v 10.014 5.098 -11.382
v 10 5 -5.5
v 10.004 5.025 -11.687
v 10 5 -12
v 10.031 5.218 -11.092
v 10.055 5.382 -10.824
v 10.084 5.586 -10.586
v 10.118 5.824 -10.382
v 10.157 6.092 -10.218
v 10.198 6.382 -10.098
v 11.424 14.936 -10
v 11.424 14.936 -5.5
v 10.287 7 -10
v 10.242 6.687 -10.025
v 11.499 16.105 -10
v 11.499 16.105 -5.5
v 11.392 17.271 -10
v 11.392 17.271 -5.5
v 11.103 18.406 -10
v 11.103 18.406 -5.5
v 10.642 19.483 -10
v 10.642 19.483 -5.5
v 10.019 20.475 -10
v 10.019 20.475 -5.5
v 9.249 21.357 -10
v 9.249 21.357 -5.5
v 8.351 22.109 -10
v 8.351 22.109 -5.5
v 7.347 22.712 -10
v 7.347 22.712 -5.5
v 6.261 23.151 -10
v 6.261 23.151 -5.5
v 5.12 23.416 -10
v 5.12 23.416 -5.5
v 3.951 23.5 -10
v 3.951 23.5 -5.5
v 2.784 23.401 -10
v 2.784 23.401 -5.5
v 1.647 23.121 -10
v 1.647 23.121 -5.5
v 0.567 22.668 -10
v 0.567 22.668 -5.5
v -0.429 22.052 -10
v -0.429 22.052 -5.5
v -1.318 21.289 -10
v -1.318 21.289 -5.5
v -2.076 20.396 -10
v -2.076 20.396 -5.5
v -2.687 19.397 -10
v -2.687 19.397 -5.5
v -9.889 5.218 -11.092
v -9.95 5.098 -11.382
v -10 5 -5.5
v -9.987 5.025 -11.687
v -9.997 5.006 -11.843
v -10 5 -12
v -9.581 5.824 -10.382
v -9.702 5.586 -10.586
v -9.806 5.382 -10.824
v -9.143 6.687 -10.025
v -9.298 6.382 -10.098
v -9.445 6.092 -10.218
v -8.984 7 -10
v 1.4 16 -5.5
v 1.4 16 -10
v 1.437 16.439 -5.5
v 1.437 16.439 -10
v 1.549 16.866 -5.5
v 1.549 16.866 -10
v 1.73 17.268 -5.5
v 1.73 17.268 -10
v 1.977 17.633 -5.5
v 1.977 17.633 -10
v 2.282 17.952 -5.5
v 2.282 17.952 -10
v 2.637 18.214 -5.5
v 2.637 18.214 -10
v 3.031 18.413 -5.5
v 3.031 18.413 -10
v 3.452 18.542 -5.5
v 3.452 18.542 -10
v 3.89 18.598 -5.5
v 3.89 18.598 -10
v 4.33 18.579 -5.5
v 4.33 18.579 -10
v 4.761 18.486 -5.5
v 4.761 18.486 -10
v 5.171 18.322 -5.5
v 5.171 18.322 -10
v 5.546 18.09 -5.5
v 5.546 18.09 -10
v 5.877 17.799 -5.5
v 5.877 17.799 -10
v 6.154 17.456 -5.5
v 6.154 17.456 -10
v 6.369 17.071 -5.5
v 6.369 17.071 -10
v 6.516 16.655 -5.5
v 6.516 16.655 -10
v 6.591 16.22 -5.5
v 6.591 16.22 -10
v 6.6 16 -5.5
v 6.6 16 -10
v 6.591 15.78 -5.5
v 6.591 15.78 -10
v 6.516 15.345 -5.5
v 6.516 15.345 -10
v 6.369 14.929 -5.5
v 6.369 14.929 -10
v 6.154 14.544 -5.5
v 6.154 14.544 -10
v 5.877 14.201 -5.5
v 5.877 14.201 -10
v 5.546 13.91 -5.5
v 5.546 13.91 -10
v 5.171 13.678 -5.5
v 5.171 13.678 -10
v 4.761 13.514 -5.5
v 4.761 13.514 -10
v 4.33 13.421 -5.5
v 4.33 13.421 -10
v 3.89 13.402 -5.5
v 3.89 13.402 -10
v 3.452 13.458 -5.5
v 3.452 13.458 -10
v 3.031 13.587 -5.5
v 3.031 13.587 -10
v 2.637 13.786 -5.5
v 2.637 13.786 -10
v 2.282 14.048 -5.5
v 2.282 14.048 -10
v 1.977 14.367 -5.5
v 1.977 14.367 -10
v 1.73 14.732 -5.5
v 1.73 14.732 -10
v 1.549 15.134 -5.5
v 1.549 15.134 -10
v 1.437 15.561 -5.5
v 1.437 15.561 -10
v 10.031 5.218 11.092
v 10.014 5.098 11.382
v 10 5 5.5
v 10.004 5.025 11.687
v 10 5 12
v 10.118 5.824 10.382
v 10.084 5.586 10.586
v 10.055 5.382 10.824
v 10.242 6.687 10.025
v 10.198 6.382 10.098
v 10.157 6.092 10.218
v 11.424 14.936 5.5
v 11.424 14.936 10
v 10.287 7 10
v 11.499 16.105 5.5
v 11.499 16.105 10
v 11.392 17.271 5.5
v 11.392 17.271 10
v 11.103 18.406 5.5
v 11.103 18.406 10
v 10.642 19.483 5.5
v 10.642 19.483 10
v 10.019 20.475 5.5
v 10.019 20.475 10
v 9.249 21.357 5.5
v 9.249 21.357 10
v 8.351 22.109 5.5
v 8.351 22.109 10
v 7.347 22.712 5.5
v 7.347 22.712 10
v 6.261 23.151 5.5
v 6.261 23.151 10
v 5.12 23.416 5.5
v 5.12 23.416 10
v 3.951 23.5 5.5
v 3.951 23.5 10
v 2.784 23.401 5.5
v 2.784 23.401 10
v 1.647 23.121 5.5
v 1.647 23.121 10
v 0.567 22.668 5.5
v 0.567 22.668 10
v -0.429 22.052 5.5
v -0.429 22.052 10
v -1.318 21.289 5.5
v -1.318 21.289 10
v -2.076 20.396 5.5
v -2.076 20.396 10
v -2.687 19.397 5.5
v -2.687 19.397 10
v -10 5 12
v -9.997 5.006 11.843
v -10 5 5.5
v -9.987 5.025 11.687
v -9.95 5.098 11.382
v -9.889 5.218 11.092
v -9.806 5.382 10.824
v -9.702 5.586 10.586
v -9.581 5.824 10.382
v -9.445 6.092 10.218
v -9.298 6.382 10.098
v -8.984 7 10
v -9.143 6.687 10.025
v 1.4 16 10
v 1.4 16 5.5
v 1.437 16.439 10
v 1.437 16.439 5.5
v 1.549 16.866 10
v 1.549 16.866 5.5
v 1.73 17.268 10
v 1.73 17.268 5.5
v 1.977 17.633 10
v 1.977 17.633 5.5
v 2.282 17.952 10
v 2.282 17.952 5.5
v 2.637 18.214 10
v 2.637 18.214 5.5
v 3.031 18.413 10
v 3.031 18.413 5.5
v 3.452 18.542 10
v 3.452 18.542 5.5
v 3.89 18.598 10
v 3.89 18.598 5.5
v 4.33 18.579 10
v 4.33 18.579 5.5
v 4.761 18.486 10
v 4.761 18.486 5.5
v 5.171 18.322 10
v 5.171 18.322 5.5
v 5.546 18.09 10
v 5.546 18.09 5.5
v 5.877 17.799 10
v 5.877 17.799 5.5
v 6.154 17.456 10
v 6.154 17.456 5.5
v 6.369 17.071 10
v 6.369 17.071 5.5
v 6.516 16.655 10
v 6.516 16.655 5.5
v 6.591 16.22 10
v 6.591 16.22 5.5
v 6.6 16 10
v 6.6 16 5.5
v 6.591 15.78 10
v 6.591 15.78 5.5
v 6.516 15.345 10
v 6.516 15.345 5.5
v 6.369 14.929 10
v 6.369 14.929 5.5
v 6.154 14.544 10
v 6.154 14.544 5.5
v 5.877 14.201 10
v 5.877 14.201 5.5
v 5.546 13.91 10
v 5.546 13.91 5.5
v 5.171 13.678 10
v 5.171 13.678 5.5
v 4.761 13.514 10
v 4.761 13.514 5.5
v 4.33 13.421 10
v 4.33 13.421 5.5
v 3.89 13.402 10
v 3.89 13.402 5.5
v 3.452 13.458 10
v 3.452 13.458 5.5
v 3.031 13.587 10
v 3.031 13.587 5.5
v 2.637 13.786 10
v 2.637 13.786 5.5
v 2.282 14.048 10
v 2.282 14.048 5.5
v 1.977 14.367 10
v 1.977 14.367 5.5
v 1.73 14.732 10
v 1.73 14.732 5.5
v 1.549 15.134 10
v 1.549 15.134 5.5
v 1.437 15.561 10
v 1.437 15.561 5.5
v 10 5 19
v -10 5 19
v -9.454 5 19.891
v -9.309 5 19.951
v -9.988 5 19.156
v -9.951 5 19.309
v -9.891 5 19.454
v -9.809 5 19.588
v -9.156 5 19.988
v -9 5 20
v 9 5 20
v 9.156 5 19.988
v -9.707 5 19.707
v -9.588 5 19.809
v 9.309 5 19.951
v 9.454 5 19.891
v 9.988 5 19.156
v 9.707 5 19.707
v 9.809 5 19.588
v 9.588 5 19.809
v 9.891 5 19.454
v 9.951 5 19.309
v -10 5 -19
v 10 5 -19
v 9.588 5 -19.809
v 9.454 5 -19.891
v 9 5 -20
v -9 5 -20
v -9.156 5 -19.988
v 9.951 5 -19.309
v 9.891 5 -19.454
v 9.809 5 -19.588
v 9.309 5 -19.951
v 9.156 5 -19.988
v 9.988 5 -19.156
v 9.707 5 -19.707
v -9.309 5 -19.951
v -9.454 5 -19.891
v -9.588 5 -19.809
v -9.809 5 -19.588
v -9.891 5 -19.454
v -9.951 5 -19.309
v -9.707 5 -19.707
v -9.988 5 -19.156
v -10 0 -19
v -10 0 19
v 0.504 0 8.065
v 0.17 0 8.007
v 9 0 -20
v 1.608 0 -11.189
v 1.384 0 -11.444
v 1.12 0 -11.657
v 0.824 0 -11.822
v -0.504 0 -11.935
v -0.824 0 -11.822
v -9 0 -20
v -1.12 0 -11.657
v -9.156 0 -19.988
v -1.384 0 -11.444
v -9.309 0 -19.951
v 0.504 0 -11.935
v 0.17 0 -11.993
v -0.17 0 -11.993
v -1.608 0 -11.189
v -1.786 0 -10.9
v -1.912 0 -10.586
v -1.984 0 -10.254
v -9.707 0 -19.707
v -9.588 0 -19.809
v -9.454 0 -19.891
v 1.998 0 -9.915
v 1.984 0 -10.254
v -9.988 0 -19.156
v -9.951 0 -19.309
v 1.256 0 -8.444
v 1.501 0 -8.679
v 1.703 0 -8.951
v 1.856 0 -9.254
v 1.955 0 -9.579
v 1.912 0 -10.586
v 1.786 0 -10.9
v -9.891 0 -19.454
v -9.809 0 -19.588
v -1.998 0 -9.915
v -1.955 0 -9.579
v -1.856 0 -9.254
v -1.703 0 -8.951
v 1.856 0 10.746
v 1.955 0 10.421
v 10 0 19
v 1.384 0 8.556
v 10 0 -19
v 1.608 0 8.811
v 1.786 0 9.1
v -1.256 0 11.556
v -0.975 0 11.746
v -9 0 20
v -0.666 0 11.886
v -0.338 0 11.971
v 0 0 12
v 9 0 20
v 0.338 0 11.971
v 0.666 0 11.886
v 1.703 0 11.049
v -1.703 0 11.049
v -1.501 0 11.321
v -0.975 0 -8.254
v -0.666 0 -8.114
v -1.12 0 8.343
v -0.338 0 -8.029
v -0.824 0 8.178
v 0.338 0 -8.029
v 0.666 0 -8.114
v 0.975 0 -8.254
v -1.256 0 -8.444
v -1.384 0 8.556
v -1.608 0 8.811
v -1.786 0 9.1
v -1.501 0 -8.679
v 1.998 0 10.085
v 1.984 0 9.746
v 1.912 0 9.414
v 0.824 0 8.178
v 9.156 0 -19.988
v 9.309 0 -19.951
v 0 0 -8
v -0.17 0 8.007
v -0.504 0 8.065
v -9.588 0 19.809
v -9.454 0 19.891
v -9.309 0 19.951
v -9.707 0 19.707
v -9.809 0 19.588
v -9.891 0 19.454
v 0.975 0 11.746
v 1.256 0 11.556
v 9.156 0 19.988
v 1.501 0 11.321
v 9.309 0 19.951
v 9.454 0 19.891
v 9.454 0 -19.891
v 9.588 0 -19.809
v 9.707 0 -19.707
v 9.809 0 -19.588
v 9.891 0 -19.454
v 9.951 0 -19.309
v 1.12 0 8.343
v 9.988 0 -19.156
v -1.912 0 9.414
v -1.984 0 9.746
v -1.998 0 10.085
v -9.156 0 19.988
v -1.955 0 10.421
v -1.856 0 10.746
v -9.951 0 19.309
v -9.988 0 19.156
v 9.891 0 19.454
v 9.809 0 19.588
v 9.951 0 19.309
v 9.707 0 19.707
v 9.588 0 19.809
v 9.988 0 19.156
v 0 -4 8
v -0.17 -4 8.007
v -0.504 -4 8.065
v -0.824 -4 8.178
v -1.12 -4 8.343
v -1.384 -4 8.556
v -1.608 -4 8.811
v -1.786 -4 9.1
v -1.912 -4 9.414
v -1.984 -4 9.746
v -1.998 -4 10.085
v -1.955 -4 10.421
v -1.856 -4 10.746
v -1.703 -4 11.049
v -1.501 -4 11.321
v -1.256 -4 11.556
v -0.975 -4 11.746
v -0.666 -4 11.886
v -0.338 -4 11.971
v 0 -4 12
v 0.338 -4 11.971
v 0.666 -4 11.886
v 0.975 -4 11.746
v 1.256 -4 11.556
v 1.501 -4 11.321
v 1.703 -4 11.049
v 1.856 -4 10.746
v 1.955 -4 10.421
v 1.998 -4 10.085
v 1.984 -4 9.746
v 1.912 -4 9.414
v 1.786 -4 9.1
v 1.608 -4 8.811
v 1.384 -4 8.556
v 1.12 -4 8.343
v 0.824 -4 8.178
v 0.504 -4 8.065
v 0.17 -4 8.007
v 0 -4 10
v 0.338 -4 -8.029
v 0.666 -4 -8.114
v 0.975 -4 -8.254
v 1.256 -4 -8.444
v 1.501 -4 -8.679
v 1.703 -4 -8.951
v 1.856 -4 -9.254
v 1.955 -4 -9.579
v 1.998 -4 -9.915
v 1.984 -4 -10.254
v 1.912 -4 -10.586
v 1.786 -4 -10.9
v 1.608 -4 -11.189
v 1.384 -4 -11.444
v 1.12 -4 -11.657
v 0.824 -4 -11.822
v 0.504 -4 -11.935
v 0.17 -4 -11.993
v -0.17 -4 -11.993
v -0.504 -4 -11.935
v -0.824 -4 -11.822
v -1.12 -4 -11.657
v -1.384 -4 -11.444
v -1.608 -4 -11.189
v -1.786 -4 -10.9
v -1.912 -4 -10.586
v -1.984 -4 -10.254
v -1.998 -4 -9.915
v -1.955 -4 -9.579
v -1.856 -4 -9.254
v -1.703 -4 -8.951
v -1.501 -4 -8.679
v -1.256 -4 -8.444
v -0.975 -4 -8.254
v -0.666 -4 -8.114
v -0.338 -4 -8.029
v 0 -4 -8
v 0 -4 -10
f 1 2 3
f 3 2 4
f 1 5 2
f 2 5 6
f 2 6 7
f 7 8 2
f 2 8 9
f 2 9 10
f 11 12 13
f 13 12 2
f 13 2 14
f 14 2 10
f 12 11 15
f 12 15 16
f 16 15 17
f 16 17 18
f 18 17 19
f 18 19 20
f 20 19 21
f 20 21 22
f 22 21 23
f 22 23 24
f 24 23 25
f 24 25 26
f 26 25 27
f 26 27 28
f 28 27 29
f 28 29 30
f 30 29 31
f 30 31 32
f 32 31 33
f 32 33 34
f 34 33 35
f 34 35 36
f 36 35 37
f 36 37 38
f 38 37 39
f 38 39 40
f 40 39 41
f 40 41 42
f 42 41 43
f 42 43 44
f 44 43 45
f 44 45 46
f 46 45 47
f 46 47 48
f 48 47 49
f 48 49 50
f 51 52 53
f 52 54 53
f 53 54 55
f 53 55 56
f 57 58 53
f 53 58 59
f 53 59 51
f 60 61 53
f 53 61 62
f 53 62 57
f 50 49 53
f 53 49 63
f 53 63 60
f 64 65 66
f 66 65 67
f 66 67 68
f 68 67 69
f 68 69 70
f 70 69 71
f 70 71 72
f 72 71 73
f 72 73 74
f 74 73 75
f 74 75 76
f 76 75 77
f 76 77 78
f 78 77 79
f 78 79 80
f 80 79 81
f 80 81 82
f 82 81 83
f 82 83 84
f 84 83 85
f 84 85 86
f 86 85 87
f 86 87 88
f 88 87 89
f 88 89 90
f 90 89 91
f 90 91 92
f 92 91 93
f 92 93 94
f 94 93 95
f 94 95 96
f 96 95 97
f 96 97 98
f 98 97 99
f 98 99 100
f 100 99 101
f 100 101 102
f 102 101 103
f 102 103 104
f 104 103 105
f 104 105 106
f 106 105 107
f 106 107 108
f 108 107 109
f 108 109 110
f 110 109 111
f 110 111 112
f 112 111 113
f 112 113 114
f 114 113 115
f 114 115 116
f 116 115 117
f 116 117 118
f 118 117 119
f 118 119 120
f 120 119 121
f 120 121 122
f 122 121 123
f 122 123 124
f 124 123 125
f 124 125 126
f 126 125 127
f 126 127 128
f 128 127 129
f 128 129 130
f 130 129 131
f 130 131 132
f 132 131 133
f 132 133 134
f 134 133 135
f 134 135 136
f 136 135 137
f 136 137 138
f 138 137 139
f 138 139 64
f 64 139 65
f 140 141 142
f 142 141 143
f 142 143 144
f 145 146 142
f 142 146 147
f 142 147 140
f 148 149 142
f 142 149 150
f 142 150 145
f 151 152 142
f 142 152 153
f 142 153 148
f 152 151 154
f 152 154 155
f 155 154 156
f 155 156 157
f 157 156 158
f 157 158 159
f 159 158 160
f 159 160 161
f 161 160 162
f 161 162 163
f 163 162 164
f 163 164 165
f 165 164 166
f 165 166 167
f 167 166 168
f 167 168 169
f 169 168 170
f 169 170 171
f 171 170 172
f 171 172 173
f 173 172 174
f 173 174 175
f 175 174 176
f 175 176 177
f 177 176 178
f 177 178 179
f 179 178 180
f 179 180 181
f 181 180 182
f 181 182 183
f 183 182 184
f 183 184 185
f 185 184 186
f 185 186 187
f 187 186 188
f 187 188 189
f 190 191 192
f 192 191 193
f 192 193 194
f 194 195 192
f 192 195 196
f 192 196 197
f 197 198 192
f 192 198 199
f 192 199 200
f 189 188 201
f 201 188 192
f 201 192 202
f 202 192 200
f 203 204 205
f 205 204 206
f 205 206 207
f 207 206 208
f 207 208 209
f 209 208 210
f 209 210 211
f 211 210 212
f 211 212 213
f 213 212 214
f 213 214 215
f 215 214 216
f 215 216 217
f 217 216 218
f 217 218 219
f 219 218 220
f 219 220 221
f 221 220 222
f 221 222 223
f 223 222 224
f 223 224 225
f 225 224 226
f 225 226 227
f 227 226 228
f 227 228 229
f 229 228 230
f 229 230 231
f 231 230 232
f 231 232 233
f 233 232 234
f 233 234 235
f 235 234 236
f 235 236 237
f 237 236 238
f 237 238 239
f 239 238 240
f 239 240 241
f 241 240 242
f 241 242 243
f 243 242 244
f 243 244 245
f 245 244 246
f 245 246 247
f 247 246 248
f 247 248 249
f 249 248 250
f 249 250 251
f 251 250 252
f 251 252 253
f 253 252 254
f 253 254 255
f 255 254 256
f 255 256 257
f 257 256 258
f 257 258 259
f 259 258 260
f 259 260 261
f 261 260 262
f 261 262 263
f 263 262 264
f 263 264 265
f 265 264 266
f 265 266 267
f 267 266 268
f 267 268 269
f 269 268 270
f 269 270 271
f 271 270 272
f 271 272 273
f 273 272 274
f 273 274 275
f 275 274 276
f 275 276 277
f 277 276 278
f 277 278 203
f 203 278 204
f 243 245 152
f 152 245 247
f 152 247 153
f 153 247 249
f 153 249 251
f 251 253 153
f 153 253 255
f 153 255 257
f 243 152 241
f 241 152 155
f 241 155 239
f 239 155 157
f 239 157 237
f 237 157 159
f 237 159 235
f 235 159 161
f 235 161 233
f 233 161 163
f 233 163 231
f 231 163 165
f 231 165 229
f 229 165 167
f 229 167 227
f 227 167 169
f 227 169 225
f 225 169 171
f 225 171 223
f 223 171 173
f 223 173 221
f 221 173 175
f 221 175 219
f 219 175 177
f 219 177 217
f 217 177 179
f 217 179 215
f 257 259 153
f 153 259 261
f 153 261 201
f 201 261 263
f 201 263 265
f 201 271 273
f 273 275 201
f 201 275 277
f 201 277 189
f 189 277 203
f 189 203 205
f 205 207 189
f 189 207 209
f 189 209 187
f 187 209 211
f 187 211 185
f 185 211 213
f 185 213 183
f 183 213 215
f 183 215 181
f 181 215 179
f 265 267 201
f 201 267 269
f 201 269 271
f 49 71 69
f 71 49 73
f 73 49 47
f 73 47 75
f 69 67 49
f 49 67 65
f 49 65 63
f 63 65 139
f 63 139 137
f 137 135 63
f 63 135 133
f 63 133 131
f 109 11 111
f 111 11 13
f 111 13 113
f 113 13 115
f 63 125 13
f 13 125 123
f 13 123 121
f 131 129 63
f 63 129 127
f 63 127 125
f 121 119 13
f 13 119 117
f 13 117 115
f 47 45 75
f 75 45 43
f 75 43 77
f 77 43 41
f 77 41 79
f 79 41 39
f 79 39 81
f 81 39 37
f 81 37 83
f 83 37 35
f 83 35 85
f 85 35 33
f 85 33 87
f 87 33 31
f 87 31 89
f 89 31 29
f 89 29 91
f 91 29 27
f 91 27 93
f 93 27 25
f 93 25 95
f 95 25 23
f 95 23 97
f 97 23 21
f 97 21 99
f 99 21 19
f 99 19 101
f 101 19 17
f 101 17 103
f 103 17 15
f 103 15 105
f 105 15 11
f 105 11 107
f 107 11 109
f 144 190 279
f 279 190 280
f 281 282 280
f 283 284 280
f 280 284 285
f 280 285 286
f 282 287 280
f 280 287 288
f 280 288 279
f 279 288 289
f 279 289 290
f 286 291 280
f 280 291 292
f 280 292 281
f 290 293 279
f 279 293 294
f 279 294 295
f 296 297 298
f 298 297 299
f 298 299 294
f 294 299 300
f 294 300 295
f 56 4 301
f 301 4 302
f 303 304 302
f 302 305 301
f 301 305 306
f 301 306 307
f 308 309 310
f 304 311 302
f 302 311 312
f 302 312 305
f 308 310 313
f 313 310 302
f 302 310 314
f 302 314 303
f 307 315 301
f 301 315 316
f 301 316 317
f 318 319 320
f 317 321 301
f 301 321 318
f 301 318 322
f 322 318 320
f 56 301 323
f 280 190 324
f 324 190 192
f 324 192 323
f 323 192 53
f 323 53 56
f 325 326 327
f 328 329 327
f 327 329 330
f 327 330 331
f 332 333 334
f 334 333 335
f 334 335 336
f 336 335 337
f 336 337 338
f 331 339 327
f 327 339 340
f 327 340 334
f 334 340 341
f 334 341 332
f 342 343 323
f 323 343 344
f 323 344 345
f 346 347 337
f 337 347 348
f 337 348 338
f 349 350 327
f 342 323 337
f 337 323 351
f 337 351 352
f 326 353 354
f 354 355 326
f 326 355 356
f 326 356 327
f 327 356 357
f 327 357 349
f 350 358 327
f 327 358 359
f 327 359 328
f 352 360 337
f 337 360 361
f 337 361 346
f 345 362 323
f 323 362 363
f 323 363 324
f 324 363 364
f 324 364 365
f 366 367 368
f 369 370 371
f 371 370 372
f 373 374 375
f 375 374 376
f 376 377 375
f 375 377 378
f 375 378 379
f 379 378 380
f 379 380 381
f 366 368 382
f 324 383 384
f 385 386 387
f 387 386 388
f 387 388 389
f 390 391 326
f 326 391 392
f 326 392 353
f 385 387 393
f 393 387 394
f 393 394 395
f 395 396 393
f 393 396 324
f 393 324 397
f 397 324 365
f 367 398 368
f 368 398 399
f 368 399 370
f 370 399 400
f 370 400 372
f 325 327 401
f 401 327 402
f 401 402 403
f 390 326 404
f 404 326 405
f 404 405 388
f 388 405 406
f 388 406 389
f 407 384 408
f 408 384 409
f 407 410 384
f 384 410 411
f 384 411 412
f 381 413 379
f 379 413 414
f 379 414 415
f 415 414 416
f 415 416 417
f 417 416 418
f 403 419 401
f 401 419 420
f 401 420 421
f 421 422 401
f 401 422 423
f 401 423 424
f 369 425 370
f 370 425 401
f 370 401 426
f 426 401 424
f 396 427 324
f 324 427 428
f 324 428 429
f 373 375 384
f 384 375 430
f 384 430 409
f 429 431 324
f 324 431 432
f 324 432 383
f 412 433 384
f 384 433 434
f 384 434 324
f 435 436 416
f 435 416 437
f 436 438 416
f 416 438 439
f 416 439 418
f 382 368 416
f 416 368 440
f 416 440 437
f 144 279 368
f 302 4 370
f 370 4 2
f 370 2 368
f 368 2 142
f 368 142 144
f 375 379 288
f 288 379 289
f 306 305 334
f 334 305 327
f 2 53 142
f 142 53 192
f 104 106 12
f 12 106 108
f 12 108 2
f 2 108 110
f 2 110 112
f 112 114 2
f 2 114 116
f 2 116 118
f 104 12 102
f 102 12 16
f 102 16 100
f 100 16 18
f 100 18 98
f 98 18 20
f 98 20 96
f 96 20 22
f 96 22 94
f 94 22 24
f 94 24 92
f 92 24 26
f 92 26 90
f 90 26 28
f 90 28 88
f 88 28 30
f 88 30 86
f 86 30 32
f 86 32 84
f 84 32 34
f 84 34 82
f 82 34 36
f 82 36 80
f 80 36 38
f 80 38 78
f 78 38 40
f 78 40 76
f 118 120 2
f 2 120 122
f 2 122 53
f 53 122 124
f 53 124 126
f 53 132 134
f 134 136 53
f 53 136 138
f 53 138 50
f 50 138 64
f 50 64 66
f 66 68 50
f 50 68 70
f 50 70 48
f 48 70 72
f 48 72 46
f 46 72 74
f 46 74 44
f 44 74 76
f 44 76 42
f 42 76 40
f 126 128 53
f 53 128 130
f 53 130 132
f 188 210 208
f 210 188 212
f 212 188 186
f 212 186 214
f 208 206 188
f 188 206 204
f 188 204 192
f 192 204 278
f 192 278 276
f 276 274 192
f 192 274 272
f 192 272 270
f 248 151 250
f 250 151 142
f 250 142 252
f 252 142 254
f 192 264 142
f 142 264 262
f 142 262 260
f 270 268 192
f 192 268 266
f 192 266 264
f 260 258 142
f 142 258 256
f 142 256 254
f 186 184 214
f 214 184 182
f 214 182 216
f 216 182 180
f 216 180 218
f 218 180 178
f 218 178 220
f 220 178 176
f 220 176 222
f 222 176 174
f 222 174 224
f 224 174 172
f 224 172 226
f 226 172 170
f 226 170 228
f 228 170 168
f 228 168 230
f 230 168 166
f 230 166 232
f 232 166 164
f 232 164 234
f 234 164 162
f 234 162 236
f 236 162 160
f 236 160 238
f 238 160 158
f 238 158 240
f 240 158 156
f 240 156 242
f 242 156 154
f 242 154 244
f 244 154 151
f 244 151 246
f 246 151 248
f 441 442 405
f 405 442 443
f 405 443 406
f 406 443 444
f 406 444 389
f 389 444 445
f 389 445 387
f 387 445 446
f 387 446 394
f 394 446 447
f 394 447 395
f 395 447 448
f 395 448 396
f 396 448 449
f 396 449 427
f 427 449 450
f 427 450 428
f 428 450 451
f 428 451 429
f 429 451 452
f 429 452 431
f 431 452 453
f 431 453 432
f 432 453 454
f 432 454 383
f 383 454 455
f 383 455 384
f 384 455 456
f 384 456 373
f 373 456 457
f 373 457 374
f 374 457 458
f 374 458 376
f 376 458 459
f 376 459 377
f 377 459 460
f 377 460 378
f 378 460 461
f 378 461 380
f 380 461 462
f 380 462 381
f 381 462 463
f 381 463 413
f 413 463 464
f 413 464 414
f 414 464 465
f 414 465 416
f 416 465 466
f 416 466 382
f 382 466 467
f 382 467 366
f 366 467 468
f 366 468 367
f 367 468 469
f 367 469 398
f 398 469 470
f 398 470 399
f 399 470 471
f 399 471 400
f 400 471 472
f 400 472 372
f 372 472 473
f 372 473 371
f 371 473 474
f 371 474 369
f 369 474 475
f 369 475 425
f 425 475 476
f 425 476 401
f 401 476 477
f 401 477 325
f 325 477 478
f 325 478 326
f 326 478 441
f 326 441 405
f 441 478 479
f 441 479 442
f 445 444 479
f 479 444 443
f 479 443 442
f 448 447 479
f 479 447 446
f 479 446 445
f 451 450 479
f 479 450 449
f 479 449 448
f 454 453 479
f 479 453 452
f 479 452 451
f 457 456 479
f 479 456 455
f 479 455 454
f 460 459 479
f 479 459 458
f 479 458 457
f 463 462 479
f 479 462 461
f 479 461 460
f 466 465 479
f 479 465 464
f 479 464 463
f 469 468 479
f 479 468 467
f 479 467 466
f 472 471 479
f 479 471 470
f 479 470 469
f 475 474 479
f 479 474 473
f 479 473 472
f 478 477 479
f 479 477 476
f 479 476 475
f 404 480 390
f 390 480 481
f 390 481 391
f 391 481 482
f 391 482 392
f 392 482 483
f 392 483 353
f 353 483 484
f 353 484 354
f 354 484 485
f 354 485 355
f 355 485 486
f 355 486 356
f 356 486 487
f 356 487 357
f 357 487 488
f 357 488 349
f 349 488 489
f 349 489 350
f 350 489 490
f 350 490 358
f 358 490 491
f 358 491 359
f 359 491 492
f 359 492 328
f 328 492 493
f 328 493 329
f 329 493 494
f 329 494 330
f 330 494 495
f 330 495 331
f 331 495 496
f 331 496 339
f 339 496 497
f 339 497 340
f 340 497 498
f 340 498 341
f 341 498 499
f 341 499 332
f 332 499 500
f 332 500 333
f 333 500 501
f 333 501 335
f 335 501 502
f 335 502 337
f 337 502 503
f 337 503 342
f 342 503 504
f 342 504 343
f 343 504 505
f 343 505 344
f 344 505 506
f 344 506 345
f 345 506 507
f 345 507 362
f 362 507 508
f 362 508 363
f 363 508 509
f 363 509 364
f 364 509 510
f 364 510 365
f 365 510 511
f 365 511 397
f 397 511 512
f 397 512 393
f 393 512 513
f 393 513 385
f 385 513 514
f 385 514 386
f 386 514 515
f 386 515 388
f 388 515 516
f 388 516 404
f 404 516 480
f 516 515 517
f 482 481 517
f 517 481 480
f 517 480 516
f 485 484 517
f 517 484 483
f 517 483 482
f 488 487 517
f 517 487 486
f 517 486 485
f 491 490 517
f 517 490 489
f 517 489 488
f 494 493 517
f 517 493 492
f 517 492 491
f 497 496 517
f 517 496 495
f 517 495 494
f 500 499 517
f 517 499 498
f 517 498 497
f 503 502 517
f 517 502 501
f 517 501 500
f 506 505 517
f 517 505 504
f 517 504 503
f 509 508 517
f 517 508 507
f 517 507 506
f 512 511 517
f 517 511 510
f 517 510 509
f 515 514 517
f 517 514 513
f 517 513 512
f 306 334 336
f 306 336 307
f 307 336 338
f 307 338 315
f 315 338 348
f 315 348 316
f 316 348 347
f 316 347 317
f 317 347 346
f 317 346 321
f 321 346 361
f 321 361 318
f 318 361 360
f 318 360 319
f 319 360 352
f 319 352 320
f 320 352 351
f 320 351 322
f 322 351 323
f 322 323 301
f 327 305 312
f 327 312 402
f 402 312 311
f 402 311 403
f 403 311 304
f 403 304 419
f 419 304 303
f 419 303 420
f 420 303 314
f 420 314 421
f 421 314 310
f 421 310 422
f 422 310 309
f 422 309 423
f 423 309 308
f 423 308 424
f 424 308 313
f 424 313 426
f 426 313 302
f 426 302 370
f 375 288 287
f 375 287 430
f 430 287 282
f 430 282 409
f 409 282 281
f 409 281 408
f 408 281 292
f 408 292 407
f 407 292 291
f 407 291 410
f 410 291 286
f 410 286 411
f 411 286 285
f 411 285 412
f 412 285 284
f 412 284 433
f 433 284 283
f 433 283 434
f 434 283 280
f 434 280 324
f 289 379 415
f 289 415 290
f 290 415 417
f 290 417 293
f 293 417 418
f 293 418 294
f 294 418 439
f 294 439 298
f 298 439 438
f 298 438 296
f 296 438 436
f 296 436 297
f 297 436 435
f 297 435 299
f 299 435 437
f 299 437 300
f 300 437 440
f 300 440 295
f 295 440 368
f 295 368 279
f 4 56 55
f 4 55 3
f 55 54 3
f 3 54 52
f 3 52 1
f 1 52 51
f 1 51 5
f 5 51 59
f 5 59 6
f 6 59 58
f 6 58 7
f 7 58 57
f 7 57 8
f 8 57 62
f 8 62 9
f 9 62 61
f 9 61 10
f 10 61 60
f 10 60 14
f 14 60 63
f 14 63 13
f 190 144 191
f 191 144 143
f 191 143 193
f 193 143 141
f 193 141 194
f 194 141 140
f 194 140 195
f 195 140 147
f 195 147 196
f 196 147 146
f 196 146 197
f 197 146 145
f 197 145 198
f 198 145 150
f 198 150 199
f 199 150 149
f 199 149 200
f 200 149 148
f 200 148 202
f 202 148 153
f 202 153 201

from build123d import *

# Parameters (mm, degrees)
SKETCH1_R           = 2.6
BOSS_EXTRUDE1_DEPTH = 10
SKETCH1_3_W         = 20
SKETCH1_3_H         = 5
BOSS_EXTRUDE2_DEPTH = 20
SKETCH1_4_R         = 2.6
CUT_EXTRUDE1_DEPTH  = 5.5
SKETCH2_R           = 2
BOSS_EXTRUDE3_DEPTH = 4
FILLET1_R           = 1
FILLET2_R           = 2


with BuildPart() as part:
    # Sketch1 → Boss-Extrude1 (new, symmetric)
    with BuildSketch(Plane.XY):
        with BuildLine():
            Line((-2.686718641, 19.396732815), (-10, 5))
            Line((-10, 5), (10, 5))
            Line((10, 5), (11.424127203, 14.935887565))
            ThreePointArc((11.424127203, 14.935887565), (6.260691915, 23.151172776), (-2.686718641, 19.396732815))
        make_face()
        with Locations((4, 16)):
            Circle(SKETCH1_R, mode=Mode.SUBTRACT)
    extrude(amount=BOSS_EXTRUDE1_DEPTH, both=True)

    # Sketch1<3> → Boss-Extrude2 (add, symmetric)
    with BuildSketch(Plane.XY):
        with Locations((0, 2.5)):
            Rectangle(SKETCH1_3_W, SKETCH1_3_H)
    extrude(amount=BOSS_EXTRUDE2_DEPTH, both=True)

    # Sketch1<4> → Cut-Extrude1 (cut, symmetric)
    with BuildSketch(Plane.XY):
        with BuildLine():
            ThreePointArc((11.424127203, 14.935887565), (6.260691915, 23.151172776), (-2.686718641, 19.396732815))
            Line((-2.686718641, 19.396732815), (-10, 5))
            Line((-10, 5), (10, 5))
            Line((10, 5), (11.424127203, 14.935887565))
        make_face()
        with Locations((4, 16)):
            Circle(SKETCH1_4_R, mode=Mode.SUBTRACT)
    extrude(amount=CUT_EXTRUDE1_DEPTH, both=True, mode=Mode.SUBTRACT)

    # Sketch2 → Boss-Extrude3 (add)
    with BuildSketch(Plane.XZ):
        with Locations(Location((0, 10, 0), (0, 0, 90))):
            Circle(SKETCH2_R)
        with Locations(Location((0, -10, 0), (0, 0, 90))):
            Circle(SKETCH2_R)
    extrude(amount=BOSS_EXTRUDE3_DEPTH)

    # Fillet1
    fillet1_edges = [part.edges().sort_by_distance(p)[0] for p in [
        (-10, 2.5, -20),
        (10, 2.5, 20),
        (-10, 2.5, 20),
        (10, 2.5, -20),
    ]]
    fillet(fillet1_edges, radius=FILLET1_R)

    # Fillet2
    # the kernel refuses this fillet: 2 mm, written as the material it adds along each edge
    with BuildSketch(Plane(origin=(-10, 5, 10), x_dir=(0, 0, 1), z_dir=(1, 0, 0))) as fillet2_piece_1_section:
        with BuildLine():
            CenterArc((FILLET2_R, -FILLET2_R), FILLET2_R, 90, 90)
            Line((0, -FILLET2_R), (0, 0))
            Line((0, 0), (FILLET2_R, 0))
        make_face()
    fillet2_piece_1 = extrude(amount=20, mode=Mode.PRIVATE)
    fillet2_piece_1 = split(fillet2_piece_1, bisect_by=Plane(origin=(-7.744522427, 9.440073667, 10.455584543), z_dir=(0.8915624854306203, -0.45289770872988017, 0)), keep=Keep.TOP, mode=Mode.PRIVATE)
    fillet2_piece_1 = split(fillet2_piece_1, bisect_by=Plane(origin=(9.863918043, 4.050579875, 10.455584543), z_dir=(-0.9898836270660257, 0.14188165796398555, 0)), keep=Keep.TOP, mode=Mode.PRIVATE)
    add(fillet2_piece_1)
    with BuildSketch(Plane(origin=(-10, 5, 10), x_dir=(0, 0, 1), z_dir=(1, 0, 0))) as fillet2_piece_2_section:
        with BuildLine():
            CenterArc((FILLET2_R, -FILLET2_R), FILLET2_R, 90, 90)
            Line((0, -FILLET2_R), (0, 0))
            Line((0, 0), (FILLET2_R, 0))
        make_face()
    fillet2_piece_2 = extrude(amount=25, mode=Mode.PRIVATE)
    fillet2_piece_2 = split(fillet2_piece_2, bisect_by=Plane(origin=(10, 5.860236103, 10.212945025), z_dir=(1, 0, 0)), keep=Keep.TOP, mode=Mode.PRIVATE)
    fillet2_piece_2 = split(fillet2_piece_2, bisect_by=Plane(origin=(10.122058034, 5.851577653, 10.212945025), z_dir=(-0.9898836270660257, 0.14188165796398555, 0)), keep=Keep.TOP, mode=Mode.PRIVATE)
    add(fillet2_piece_2)
    with BuildSketch(Plane(origin=(-10, 5, -10), x_dir=(0, 0, -1), z_dir=(1, 0, 0))) as fillet2_piece_3_section:
        with BuildLine():
            CenterArc((FILLET2_R, FILLET2_R), FILLET2_R, 180, 90)
            Line((0, FILLET2_R), (0, 0))
            Line((0, 0), (FILLET2_R, 0))
        make_face()
    fillet2_piece_3 = extrude(amount=20, mode=Mode.PRIVATE)
    fillet2_piece_3 = split(fillet2_piece_3, bisect_by=Plane(origin=(-7.744522427, 9.440073667, -10.455584543), z_dir=(0.8915624854306203, -0.45289770872988017, 0)), keep=Keep.TOP, mode=Mode.PRIVATE)
    fillet2_piece_3 = split(fillet2_piece_3, bisect_by=Plane(origin=(9.863918043, 4.050579875, -10.455584543), z_dir=(-0.9898836270660257, 0.14188165796398555, 0)), keep=Keep.TOP, mode=Mode.PRIVATE)
    add(fillet2_piece_3)
    with BuildSketch(Plane(origin=(-10, 5, -10), x_dir=(0, 0, -1), z_dir=(1, 0, 0))) as fillet2_piece_4_section:
        with BuildLine():
            CenterArc((FILLET2_R, FILLET2_R), FILLET2_R, 180, 90)
            Line((0, FILLET2_R), (0, 0))
            Line((0, 0), (FILLET2_R, 0))
        make_face()
    fillet2_piece_4 = extrude(amount=25, mode=Mode.PRIVATE)
    fillet2_piece_4 = split(fillet2_piece_4, bisect_by=Plane(origin=(10, 5.860236103, -10.212945025), z_dir=(1, 0, 0)), keep=Keep.TOP, mode=Mode.PRIVATE)
    fillet2_piece_4 = split(fillet2_piece_4, bisect_by=Plane(origin=(10.122058034, 5.851577653, -10.212945025), z_dir=(-0.9898836270660257, 0.14188165796398555, 0)), keep=Keep.TOP, mode=Mode.PRIVATE)
    add(fillet2_piece_4)


solid = part.part
